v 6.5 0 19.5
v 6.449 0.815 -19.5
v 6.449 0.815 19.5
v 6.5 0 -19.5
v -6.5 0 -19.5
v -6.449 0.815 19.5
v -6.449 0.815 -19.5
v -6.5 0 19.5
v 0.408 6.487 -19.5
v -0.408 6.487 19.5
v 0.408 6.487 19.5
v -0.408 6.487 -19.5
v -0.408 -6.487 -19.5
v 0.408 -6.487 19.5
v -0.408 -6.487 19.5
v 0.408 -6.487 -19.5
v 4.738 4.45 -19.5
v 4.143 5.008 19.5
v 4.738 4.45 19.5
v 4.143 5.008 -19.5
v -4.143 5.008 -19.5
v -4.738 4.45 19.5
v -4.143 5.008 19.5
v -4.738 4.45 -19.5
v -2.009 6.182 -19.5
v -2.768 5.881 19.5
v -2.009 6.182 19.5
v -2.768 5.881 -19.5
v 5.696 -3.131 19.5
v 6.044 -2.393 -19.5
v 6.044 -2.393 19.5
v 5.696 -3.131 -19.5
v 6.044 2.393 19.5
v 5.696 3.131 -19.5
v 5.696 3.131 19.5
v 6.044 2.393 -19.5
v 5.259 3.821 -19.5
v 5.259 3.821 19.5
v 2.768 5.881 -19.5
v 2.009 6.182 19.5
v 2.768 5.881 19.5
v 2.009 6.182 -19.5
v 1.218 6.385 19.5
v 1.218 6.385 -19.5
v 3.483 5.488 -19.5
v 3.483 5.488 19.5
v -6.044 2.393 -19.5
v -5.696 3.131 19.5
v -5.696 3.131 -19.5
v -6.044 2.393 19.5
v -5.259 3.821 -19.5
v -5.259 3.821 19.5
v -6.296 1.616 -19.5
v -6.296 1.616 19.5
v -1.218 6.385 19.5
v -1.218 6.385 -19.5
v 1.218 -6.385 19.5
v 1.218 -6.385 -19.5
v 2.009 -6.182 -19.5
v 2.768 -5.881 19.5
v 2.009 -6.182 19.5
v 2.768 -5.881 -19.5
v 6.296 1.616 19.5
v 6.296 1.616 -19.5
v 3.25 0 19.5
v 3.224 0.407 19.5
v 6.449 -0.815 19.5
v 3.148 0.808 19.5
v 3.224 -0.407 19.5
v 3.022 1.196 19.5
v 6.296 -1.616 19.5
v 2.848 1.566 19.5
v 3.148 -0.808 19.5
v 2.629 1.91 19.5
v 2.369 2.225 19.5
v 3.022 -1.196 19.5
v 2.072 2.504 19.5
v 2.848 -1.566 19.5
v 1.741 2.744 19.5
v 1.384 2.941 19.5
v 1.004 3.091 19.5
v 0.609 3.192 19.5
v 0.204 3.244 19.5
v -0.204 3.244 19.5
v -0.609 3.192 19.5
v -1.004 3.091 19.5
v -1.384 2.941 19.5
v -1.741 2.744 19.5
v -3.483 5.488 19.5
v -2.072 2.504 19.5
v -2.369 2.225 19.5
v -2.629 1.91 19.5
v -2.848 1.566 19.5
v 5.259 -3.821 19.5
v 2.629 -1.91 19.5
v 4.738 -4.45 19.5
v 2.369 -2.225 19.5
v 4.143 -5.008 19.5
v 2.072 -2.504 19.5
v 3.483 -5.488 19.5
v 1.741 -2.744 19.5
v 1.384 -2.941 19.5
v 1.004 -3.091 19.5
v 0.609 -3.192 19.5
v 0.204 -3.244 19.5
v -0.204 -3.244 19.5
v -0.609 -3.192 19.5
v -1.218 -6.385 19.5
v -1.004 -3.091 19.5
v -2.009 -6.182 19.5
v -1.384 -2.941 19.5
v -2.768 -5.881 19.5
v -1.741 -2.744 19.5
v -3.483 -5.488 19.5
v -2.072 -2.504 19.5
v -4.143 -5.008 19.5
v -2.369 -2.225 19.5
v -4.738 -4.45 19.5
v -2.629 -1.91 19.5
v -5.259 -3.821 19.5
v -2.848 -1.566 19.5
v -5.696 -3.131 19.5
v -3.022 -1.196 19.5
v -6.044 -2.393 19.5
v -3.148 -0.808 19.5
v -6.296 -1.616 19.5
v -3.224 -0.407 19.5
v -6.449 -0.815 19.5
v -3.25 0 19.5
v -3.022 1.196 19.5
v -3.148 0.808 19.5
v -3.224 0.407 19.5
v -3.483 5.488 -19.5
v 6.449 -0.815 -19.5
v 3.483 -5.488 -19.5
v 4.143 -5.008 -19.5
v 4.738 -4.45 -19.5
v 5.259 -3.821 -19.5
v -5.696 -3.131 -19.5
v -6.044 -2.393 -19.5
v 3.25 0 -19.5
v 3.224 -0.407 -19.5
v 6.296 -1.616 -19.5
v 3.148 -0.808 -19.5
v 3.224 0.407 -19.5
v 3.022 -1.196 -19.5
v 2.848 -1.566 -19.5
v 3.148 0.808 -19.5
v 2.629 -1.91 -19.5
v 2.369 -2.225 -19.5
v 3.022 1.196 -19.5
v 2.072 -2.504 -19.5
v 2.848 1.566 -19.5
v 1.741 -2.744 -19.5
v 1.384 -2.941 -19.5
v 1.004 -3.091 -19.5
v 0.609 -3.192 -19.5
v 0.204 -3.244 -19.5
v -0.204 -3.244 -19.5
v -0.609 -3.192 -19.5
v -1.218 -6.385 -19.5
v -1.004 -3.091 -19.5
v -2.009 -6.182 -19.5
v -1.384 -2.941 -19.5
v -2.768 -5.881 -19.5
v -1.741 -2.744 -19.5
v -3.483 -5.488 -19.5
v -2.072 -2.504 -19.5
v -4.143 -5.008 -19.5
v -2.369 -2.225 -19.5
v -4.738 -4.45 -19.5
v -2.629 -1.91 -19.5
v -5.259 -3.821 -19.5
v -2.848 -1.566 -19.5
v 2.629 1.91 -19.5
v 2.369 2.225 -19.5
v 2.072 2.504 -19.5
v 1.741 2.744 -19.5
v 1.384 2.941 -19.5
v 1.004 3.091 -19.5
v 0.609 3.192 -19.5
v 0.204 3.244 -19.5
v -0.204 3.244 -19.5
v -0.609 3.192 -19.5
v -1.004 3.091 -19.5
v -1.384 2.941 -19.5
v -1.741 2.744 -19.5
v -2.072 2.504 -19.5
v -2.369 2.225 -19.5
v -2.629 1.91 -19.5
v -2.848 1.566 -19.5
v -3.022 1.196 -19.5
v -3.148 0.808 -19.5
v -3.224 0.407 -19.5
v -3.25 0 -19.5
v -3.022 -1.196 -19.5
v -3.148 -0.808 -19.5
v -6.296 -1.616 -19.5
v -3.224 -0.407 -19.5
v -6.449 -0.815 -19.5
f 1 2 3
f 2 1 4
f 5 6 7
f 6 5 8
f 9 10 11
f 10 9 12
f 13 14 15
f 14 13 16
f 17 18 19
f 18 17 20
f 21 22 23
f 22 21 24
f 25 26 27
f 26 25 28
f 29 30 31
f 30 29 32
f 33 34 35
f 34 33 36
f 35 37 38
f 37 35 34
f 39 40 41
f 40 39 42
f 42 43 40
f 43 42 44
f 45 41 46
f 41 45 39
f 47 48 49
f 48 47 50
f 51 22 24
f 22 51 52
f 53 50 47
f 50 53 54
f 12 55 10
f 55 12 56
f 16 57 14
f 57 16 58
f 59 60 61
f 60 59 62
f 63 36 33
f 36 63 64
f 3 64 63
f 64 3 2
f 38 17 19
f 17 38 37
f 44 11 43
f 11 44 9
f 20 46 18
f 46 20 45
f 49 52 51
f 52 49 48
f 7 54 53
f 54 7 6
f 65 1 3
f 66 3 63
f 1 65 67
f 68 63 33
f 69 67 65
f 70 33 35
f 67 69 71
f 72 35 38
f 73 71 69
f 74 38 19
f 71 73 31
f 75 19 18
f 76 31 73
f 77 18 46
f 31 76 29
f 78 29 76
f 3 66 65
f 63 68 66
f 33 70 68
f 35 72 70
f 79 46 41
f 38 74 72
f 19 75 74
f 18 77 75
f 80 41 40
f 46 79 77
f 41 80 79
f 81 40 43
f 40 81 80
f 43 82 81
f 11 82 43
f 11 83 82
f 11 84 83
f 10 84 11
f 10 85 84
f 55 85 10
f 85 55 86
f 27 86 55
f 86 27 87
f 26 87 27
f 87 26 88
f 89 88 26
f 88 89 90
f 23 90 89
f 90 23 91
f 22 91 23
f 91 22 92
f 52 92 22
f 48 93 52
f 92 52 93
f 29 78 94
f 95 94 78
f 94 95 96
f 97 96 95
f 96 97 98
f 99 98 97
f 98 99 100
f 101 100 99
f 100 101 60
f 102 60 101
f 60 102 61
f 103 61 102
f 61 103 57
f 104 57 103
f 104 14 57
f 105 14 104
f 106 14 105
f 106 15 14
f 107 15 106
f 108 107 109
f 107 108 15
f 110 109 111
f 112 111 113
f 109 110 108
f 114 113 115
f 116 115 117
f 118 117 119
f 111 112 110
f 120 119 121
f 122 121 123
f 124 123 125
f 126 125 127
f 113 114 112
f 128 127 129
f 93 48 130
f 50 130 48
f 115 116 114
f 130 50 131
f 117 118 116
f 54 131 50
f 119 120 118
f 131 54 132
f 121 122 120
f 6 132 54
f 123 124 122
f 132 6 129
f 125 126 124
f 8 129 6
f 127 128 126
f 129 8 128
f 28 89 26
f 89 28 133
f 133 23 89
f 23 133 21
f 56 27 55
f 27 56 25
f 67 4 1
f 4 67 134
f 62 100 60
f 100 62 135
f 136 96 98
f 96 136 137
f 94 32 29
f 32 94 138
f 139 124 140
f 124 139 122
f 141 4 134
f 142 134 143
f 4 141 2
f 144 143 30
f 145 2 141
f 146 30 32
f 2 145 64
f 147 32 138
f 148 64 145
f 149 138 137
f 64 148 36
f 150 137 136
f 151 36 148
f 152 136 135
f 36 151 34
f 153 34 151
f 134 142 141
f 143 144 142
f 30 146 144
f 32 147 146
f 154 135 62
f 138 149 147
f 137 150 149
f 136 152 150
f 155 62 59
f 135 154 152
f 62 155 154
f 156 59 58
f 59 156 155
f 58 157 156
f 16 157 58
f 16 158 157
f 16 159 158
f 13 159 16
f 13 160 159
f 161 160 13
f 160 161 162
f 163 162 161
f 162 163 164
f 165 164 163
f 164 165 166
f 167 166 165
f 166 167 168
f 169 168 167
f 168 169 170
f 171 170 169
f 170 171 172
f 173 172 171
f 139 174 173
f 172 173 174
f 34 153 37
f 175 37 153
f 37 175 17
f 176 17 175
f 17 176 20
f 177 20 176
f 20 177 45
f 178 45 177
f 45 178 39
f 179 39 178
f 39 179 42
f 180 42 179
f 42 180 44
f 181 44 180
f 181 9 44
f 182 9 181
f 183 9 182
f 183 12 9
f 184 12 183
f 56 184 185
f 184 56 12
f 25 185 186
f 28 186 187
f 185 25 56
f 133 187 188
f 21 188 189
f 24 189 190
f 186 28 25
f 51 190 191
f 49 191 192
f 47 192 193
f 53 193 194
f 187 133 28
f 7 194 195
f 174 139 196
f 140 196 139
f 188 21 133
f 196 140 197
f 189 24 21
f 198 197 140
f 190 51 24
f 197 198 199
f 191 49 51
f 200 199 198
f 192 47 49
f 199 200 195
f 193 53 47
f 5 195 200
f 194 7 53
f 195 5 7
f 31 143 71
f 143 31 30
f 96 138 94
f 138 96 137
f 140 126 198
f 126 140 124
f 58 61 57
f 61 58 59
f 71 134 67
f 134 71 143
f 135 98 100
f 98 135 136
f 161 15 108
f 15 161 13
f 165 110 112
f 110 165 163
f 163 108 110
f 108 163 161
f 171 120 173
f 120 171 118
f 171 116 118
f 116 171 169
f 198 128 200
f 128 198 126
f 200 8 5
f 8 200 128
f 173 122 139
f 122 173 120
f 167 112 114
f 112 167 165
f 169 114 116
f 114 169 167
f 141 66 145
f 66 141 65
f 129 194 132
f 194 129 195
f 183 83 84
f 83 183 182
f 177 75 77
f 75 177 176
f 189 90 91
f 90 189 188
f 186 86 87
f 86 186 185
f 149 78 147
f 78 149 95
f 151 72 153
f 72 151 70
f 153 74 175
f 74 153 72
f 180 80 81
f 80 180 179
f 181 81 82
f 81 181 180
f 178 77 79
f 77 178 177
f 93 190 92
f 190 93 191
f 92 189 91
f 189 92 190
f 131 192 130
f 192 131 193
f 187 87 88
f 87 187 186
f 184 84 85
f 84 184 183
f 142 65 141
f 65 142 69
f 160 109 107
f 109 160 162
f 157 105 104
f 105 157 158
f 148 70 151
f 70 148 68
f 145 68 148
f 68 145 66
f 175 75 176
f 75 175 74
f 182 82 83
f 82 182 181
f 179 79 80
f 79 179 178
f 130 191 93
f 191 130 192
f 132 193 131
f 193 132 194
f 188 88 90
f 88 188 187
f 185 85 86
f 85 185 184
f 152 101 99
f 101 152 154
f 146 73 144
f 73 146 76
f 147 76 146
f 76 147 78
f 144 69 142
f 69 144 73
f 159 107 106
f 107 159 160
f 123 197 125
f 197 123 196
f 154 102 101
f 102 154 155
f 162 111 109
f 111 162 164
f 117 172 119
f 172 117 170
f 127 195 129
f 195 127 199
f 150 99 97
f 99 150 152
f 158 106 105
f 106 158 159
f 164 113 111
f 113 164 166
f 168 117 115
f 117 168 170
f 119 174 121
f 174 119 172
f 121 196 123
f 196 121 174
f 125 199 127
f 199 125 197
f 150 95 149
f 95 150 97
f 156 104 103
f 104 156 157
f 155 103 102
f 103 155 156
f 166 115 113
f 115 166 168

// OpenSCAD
$fn = 50;


difference() {
	union() {
		translate(v = [0, 0, -19.5000000000]) {
			cylinder(h = 39, r = 6.5000000000);
		}
	}
	union() {
		translate(v = [0, 0, -100.0000000000]) {
			cylinder(h = 200, r = 3.2500000000);
		}
	}
}
